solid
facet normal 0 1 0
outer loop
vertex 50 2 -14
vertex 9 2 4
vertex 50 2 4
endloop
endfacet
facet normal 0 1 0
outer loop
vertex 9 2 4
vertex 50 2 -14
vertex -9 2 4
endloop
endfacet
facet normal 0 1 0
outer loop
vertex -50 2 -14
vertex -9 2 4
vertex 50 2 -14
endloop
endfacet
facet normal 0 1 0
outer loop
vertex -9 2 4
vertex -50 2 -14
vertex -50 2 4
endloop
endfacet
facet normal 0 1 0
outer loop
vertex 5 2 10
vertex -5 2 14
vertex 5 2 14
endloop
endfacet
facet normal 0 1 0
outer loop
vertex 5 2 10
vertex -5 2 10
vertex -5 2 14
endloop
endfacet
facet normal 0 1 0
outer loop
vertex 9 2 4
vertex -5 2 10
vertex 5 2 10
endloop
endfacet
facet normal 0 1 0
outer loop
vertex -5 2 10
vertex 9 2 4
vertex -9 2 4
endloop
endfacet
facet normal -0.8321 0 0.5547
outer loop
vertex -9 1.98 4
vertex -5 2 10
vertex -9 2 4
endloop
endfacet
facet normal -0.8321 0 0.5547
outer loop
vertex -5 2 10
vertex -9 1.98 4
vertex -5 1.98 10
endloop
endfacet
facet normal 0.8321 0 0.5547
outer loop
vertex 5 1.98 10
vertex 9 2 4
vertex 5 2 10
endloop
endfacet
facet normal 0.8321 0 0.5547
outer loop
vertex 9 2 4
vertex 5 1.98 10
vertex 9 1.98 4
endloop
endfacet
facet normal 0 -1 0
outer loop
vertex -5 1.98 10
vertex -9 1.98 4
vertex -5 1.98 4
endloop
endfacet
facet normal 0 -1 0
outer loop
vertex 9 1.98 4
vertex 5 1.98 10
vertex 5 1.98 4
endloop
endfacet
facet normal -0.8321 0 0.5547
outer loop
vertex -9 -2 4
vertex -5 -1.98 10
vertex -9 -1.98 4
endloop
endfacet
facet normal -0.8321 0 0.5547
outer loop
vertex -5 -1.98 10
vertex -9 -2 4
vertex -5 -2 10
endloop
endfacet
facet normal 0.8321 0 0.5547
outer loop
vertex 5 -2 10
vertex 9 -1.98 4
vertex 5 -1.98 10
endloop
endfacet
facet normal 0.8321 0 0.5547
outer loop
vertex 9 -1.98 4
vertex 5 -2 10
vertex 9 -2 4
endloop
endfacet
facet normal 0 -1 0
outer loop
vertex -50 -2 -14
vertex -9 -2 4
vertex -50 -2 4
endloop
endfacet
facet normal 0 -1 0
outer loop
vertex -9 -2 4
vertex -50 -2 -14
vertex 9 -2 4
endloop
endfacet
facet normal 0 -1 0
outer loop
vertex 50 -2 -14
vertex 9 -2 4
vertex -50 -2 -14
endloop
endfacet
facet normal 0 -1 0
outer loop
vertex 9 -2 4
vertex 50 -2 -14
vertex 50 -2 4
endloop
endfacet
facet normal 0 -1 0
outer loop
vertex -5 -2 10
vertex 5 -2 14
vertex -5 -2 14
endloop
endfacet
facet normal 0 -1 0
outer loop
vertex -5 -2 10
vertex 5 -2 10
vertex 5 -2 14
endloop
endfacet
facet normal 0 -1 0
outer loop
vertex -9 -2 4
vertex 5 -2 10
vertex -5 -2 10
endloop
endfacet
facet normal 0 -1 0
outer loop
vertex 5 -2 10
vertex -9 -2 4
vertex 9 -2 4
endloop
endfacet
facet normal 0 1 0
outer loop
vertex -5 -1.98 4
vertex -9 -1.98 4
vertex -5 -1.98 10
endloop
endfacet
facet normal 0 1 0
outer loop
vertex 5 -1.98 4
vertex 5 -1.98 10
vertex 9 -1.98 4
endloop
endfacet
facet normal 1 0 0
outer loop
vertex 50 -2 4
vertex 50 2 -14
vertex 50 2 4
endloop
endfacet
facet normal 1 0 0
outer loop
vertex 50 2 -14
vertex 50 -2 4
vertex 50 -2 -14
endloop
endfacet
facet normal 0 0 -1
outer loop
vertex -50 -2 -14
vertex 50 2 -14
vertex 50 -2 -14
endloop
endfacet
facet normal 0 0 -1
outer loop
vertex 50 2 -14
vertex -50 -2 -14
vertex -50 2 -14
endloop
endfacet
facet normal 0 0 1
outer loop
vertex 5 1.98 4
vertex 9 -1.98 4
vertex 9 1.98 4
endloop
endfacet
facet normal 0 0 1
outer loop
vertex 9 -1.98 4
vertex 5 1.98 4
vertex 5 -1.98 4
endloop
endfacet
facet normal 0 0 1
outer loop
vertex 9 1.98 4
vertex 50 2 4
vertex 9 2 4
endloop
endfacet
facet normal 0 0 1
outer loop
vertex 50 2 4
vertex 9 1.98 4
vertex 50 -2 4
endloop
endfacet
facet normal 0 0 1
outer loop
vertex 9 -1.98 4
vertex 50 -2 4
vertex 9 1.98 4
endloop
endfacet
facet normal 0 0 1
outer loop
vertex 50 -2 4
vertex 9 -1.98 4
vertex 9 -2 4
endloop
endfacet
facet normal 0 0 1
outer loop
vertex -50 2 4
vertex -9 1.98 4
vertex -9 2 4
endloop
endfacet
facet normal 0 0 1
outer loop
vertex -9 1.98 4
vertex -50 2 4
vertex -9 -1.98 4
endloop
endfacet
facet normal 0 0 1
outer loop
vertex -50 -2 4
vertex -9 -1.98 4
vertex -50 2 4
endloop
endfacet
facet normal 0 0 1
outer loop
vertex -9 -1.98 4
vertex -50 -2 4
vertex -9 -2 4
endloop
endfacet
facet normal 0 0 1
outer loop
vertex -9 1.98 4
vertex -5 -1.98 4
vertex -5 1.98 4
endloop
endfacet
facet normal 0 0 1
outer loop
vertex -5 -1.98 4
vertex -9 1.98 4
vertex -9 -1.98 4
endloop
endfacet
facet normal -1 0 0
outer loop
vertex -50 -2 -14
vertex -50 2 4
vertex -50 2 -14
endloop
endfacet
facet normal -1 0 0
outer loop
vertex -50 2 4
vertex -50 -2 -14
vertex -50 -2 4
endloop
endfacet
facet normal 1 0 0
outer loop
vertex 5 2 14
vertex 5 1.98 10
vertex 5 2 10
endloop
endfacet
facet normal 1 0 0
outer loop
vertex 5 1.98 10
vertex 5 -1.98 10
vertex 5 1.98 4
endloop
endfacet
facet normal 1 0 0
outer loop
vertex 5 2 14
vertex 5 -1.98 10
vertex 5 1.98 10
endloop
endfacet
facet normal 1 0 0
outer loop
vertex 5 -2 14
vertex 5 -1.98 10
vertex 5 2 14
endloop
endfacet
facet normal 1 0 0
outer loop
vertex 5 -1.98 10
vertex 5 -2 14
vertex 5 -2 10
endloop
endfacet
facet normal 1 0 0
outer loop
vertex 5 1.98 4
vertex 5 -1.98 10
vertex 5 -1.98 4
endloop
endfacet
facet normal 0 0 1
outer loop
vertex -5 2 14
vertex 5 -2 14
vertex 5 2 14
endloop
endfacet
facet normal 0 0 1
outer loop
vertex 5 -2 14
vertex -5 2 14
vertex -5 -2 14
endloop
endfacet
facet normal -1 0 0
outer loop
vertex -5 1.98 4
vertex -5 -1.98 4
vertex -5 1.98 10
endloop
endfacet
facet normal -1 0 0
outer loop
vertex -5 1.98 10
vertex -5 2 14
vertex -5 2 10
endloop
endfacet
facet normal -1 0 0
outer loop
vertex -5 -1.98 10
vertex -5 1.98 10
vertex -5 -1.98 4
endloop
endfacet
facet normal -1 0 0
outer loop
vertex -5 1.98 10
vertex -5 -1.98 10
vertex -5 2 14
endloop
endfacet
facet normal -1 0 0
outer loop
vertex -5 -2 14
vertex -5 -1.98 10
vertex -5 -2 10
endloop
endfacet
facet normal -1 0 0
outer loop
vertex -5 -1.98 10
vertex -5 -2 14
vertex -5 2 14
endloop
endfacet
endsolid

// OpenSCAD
// Dummy topper + stem tester for dance bag base v3 through-slot
// Print flat on the bed.

$fn = 48;

// =========================
// STEM THAT MATCHES THE BASE SLOT TARGET
// =========================
stem_w   = 10.0;
stem_t   = 4.0;
stem_len = 10.0;    // length through the base roof

// =========================
// TOPPER TO EXPOSE TILT
// =========================
name_w = 100.0;     // try 80 / 100 / 120
name_h = 18.0;
name_t = 4.0;

// centered stem by default
stem_offset_x = 0.0;

// small fillet-ish gusset dimensions at stem junction
use_gussets = true;
gusset_w = 18.0;
gusset_h = 6.0;

// =========================
// MAIN
// =========================
translate([0, 0, stem_len + name_t])
    rotate([180, 0, 0])
        dummy_topper();

module dummy_topper() {
    union() {
        // name bar
        translate([-name_w/2, -name_t/2, stem_len])
            cube([name_w, name_t, name_h]);

        // main stem
        translate([stem_offset_x - stem_w/2, -stem_t/2, 0])
            cube([stem_w, stem_t, stem_len + 0.02]);

        if (use_gussets) {
            // front gusset
            hull() {
                translate([stem_offset_x - gusset_w/2, -name_t/2, stem_len])
                    cube([gusset_w, 0.02, gusset_h]);
                translate([stem_offset_x - stem_w/2, -stem_t/2, stem_len - gusset_h])
                    cube([stem_w, 0.02, 0.02]);
            }

            // back gusset
            hull() {
                translate([stem_offset_x - gusset_w/2, name_t/2 - 0.02, stem_len])
                    cube([gusset_w, 0.02, gusset_h]);
                translate([stem_offset_x - stem_w/2, stem_t/2 - 0.02, stem_len - gusset_h])
                    cube([stem_w, 0.02, 0.02]);
            }
        }
    }
}
